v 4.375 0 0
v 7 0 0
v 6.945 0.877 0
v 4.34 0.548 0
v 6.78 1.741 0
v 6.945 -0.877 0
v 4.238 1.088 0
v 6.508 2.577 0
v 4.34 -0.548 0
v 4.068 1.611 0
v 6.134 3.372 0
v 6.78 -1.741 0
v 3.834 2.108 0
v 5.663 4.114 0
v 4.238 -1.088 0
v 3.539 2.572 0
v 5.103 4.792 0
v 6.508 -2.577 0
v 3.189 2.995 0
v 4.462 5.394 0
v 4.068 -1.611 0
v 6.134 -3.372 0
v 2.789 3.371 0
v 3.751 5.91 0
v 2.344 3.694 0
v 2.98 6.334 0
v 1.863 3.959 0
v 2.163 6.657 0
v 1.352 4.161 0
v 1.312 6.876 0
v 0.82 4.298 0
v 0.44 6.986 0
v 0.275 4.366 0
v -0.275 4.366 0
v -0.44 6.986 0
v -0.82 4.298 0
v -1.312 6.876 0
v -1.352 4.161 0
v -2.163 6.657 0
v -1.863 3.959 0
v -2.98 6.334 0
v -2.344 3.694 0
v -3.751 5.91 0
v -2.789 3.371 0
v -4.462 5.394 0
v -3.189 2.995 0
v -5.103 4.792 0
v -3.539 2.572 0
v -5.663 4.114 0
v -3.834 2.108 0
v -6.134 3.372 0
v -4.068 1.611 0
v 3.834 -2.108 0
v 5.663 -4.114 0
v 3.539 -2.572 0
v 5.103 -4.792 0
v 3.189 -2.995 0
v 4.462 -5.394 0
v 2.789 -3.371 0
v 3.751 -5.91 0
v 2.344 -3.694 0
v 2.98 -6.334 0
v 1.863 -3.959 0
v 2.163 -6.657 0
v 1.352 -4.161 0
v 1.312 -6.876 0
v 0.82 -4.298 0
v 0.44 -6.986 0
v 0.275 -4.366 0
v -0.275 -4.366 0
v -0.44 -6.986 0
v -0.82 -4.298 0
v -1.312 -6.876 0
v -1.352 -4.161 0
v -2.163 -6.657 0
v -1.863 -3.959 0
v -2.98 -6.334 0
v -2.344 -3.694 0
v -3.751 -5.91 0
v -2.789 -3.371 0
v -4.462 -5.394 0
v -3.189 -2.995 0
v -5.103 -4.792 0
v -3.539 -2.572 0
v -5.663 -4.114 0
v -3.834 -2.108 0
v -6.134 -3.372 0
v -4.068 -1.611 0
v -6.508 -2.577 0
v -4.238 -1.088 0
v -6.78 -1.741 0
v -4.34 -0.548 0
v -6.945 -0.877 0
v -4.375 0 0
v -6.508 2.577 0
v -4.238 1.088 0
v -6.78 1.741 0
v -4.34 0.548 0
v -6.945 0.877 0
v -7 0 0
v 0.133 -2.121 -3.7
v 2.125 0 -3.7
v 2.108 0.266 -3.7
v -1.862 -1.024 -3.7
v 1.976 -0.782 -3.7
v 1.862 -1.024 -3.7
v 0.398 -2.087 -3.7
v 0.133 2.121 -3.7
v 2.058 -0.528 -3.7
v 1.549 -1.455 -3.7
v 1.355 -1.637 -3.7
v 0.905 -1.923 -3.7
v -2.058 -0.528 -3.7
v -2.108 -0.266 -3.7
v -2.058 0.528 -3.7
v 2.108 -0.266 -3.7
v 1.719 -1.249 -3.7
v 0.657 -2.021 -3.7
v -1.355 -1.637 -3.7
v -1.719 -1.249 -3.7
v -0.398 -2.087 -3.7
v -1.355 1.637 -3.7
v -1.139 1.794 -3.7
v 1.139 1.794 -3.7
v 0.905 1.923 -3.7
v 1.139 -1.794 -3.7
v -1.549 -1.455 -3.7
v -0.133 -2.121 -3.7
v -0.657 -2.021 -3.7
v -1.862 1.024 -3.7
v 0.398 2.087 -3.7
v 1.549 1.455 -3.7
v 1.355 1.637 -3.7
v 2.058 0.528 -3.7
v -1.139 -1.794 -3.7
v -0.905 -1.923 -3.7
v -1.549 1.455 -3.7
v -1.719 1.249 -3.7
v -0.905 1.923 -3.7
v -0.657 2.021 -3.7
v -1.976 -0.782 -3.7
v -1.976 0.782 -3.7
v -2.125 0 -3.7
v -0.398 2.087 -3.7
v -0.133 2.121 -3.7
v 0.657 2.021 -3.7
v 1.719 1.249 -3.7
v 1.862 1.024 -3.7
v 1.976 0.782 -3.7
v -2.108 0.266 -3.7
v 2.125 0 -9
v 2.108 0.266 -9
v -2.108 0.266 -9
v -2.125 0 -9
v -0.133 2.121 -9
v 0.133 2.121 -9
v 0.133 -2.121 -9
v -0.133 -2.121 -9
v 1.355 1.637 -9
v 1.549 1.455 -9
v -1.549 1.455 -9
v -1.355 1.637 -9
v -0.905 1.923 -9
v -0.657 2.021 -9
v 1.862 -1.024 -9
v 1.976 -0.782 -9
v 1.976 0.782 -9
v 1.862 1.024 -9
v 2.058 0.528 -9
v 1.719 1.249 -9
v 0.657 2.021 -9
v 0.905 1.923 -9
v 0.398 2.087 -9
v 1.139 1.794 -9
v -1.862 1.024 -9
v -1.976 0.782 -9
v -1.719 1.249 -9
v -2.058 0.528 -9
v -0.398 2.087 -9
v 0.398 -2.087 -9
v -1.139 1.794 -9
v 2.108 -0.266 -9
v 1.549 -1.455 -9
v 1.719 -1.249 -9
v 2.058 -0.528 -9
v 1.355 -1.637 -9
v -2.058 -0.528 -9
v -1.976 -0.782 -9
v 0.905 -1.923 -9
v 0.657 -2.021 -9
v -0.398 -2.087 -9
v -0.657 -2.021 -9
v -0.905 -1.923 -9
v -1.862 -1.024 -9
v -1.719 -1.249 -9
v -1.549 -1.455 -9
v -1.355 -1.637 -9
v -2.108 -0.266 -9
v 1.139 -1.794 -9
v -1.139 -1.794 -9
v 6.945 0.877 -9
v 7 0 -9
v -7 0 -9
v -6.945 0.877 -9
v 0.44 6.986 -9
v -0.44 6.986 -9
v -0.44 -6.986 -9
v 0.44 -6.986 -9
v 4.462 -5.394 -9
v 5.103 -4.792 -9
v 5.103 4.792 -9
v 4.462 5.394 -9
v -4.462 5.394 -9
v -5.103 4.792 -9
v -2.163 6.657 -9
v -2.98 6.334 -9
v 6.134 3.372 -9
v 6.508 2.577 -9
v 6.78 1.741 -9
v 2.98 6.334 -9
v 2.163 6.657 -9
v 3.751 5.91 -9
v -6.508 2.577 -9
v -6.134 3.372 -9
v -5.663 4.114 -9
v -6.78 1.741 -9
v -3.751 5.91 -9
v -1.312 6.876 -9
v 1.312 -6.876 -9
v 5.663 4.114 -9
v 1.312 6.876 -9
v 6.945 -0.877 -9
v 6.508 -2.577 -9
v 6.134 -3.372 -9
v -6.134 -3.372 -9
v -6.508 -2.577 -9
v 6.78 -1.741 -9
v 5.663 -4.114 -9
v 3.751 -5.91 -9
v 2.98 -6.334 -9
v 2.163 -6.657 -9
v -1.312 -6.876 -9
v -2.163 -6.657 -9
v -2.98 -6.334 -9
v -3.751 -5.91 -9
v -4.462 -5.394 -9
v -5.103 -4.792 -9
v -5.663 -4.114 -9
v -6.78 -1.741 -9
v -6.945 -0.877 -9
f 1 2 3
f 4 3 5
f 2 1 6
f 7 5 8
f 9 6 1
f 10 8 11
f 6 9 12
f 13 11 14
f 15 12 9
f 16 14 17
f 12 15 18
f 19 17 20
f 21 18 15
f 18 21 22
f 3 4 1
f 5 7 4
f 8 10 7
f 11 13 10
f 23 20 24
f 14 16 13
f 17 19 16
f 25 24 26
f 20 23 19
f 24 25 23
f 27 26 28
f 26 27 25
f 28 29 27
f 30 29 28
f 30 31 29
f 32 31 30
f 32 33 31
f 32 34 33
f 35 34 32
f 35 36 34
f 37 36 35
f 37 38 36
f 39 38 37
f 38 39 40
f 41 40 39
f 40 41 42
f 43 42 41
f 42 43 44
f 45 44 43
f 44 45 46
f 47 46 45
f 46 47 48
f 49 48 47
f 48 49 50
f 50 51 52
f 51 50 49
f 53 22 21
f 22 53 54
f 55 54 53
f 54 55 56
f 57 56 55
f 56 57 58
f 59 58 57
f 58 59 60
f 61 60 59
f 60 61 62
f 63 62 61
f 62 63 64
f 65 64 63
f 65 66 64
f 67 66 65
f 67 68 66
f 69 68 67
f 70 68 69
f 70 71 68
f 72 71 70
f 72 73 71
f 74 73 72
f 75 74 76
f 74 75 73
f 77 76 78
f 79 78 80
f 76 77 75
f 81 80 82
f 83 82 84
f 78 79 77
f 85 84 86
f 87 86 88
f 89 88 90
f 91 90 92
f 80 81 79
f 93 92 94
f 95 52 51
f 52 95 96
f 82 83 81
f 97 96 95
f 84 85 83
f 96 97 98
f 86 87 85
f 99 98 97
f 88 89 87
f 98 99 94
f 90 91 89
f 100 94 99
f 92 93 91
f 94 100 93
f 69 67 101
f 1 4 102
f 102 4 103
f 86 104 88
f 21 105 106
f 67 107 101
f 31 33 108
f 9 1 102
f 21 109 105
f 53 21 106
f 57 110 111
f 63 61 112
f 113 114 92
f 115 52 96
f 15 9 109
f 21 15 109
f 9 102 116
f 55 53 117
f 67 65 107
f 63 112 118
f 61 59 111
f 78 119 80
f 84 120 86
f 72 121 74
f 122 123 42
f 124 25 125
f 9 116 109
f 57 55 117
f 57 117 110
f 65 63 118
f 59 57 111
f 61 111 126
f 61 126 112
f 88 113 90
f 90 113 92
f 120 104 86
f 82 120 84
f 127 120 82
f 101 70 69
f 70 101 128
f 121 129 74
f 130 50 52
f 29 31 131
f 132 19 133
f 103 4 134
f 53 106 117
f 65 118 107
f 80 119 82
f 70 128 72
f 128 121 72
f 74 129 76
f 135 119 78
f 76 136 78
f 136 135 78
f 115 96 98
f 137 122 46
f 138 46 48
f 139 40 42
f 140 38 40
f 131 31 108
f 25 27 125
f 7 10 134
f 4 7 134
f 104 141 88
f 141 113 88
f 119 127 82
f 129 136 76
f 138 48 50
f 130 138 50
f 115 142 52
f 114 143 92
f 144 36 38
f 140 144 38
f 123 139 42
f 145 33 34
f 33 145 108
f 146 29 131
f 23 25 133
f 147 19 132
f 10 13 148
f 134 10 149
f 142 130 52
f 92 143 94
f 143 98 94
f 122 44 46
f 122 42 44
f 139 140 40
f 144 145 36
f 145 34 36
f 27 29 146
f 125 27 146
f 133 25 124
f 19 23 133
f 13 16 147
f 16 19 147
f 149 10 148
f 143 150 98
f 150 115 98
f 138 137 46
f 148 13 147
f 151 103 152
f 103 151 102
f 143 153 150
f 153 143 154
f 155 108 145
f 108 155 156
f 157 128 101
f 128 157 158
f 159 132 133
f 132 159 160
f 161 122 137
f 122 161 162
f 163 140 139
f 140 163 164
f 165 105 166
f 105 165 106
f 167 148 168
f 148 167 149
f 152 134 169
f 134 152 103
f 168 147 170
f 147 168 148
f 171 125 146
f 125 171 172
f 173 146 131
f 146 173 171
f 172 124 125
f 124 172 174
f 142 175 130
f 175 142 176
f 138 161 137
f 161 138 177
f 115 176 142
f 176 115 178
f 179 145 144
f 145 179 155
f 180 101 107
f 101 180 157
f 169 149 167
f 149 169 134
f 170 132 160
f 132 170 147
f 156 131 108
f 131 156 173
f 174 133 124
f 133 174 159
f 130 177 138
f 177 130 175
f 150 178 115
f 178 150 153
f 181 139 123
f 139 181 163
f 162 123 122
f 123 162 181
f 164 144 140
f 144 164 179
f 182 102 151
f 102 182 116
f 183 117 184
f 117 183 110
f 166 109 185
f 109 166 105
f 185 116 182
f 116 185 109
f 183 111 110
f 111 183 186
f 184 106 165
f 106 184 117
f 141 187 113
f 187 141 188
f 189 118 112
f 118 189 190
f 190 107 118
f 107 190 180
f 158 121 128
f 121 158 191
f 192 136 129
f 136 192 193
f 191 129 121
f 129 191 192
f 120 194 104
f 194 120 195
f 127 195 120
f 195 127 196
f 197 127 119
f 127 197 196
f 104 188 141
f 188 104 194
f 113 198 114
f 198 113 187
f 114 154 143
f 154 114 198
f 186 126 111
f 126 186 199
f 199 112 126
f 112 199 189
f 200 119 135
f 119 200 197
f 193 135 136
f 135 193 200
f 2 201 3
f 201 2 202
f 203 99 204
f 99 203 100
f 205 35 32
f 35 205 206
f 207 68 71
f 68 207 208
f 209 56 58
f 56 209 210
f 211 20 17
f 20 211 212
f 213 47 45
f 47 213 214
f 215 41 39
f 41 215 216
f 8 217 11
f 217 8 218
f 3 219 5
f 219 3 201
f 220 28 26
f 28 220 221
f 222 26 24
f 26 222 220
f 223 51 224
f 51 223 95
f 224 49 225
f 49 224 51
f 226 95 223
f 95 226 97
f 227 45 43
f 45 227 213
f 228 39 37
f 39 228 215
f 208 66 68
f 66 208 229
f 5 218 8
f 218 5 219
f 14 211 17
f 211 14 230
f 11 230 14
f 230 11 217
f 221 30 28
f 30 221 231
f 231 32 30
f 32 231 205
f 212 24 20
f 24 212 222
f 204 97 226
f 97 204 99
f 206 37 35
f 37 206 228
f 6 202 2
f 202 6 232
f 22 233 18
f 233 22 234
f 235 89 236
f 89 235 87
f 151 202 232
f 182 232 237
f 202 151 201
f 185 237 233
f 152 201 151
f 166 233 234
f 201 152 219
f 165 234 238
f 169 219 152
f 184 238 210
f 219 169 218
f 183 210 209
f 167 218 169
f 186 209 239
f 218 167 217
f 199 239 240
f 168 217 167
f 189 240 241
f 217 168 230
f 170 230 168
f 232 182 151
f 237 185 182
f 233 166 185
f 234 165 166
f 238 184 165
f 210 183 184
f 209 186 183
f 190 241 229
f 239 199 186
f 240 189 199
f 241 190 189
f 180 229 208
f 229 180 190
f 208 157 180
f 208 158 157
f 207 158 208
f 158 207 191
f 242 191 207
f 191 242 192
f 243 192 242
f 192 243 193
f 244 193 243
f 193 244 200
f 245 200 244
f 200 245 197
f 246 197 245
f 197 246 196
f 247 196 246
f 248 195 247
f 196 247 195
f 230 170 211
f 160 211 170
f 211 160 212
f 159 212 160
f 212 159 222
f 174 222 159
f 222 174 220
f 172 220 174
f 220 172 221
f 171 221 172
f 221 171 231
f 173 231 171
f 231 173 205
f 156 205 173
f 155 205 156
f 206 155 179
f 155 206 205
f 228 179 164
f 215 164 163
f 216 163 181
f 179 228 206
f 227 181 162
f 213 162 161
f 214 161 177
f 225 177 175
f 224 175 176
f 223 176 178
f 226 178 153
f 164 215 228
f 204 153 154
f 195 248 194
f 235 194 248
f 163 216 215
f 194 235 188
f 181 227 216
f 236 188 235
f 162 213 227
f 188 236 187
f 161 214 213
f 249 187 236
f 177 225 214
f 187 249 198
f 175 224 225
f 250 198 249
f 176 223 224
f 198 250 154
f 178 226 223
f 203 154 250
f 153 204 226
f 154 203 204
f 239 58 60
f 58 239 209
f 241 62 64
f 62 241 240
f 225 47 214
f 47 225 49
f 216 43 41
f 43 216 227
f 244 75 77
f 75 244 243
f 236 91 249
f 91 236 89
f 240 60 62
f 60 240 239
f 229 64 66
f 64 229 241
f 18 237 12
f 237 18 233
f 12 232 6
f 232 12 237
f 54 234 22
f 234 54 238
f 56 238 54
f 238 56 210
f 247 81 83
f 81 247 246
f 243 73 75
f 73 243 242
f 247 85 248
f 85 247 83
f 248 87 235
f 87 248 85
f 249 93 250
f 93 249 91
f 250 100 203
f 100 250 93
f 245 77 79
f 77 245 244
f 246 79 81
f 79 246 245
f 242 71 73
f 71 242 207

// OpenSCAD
$fn = 50;


difference() {
	union() {
		translate(v = [0, 0, -9.0000000000]) {
			cylinder(h = 9, r = 7.0000000000);
		}
	}
	union() {
		translate(v = [0, 0, 0]) {
			rotate(a = [0, 0, 0]) {
				difference() {
					union() {
						translate(v = [0, 0, -12.0000000000]) {
							cylinder(h = 12, r = 2.0000000000);
						}
						translate(v = [0, 0, -3.7000000000]) {
							cylinder(h = 3.7000000000, r1 = 2.1250000000, r2 = 4.3750000000);
						}
						translate(v = [0, 0, -12.0000000000]) {
							cylinder(h = 12, r = 2.1250000000);
						}
						translate(v = [0, 0, -12.0000000000]) {
							cylinder(h = 12, r = 2.0000000000);
						}
					}
					union();
				}
			}
		}
	}
}
